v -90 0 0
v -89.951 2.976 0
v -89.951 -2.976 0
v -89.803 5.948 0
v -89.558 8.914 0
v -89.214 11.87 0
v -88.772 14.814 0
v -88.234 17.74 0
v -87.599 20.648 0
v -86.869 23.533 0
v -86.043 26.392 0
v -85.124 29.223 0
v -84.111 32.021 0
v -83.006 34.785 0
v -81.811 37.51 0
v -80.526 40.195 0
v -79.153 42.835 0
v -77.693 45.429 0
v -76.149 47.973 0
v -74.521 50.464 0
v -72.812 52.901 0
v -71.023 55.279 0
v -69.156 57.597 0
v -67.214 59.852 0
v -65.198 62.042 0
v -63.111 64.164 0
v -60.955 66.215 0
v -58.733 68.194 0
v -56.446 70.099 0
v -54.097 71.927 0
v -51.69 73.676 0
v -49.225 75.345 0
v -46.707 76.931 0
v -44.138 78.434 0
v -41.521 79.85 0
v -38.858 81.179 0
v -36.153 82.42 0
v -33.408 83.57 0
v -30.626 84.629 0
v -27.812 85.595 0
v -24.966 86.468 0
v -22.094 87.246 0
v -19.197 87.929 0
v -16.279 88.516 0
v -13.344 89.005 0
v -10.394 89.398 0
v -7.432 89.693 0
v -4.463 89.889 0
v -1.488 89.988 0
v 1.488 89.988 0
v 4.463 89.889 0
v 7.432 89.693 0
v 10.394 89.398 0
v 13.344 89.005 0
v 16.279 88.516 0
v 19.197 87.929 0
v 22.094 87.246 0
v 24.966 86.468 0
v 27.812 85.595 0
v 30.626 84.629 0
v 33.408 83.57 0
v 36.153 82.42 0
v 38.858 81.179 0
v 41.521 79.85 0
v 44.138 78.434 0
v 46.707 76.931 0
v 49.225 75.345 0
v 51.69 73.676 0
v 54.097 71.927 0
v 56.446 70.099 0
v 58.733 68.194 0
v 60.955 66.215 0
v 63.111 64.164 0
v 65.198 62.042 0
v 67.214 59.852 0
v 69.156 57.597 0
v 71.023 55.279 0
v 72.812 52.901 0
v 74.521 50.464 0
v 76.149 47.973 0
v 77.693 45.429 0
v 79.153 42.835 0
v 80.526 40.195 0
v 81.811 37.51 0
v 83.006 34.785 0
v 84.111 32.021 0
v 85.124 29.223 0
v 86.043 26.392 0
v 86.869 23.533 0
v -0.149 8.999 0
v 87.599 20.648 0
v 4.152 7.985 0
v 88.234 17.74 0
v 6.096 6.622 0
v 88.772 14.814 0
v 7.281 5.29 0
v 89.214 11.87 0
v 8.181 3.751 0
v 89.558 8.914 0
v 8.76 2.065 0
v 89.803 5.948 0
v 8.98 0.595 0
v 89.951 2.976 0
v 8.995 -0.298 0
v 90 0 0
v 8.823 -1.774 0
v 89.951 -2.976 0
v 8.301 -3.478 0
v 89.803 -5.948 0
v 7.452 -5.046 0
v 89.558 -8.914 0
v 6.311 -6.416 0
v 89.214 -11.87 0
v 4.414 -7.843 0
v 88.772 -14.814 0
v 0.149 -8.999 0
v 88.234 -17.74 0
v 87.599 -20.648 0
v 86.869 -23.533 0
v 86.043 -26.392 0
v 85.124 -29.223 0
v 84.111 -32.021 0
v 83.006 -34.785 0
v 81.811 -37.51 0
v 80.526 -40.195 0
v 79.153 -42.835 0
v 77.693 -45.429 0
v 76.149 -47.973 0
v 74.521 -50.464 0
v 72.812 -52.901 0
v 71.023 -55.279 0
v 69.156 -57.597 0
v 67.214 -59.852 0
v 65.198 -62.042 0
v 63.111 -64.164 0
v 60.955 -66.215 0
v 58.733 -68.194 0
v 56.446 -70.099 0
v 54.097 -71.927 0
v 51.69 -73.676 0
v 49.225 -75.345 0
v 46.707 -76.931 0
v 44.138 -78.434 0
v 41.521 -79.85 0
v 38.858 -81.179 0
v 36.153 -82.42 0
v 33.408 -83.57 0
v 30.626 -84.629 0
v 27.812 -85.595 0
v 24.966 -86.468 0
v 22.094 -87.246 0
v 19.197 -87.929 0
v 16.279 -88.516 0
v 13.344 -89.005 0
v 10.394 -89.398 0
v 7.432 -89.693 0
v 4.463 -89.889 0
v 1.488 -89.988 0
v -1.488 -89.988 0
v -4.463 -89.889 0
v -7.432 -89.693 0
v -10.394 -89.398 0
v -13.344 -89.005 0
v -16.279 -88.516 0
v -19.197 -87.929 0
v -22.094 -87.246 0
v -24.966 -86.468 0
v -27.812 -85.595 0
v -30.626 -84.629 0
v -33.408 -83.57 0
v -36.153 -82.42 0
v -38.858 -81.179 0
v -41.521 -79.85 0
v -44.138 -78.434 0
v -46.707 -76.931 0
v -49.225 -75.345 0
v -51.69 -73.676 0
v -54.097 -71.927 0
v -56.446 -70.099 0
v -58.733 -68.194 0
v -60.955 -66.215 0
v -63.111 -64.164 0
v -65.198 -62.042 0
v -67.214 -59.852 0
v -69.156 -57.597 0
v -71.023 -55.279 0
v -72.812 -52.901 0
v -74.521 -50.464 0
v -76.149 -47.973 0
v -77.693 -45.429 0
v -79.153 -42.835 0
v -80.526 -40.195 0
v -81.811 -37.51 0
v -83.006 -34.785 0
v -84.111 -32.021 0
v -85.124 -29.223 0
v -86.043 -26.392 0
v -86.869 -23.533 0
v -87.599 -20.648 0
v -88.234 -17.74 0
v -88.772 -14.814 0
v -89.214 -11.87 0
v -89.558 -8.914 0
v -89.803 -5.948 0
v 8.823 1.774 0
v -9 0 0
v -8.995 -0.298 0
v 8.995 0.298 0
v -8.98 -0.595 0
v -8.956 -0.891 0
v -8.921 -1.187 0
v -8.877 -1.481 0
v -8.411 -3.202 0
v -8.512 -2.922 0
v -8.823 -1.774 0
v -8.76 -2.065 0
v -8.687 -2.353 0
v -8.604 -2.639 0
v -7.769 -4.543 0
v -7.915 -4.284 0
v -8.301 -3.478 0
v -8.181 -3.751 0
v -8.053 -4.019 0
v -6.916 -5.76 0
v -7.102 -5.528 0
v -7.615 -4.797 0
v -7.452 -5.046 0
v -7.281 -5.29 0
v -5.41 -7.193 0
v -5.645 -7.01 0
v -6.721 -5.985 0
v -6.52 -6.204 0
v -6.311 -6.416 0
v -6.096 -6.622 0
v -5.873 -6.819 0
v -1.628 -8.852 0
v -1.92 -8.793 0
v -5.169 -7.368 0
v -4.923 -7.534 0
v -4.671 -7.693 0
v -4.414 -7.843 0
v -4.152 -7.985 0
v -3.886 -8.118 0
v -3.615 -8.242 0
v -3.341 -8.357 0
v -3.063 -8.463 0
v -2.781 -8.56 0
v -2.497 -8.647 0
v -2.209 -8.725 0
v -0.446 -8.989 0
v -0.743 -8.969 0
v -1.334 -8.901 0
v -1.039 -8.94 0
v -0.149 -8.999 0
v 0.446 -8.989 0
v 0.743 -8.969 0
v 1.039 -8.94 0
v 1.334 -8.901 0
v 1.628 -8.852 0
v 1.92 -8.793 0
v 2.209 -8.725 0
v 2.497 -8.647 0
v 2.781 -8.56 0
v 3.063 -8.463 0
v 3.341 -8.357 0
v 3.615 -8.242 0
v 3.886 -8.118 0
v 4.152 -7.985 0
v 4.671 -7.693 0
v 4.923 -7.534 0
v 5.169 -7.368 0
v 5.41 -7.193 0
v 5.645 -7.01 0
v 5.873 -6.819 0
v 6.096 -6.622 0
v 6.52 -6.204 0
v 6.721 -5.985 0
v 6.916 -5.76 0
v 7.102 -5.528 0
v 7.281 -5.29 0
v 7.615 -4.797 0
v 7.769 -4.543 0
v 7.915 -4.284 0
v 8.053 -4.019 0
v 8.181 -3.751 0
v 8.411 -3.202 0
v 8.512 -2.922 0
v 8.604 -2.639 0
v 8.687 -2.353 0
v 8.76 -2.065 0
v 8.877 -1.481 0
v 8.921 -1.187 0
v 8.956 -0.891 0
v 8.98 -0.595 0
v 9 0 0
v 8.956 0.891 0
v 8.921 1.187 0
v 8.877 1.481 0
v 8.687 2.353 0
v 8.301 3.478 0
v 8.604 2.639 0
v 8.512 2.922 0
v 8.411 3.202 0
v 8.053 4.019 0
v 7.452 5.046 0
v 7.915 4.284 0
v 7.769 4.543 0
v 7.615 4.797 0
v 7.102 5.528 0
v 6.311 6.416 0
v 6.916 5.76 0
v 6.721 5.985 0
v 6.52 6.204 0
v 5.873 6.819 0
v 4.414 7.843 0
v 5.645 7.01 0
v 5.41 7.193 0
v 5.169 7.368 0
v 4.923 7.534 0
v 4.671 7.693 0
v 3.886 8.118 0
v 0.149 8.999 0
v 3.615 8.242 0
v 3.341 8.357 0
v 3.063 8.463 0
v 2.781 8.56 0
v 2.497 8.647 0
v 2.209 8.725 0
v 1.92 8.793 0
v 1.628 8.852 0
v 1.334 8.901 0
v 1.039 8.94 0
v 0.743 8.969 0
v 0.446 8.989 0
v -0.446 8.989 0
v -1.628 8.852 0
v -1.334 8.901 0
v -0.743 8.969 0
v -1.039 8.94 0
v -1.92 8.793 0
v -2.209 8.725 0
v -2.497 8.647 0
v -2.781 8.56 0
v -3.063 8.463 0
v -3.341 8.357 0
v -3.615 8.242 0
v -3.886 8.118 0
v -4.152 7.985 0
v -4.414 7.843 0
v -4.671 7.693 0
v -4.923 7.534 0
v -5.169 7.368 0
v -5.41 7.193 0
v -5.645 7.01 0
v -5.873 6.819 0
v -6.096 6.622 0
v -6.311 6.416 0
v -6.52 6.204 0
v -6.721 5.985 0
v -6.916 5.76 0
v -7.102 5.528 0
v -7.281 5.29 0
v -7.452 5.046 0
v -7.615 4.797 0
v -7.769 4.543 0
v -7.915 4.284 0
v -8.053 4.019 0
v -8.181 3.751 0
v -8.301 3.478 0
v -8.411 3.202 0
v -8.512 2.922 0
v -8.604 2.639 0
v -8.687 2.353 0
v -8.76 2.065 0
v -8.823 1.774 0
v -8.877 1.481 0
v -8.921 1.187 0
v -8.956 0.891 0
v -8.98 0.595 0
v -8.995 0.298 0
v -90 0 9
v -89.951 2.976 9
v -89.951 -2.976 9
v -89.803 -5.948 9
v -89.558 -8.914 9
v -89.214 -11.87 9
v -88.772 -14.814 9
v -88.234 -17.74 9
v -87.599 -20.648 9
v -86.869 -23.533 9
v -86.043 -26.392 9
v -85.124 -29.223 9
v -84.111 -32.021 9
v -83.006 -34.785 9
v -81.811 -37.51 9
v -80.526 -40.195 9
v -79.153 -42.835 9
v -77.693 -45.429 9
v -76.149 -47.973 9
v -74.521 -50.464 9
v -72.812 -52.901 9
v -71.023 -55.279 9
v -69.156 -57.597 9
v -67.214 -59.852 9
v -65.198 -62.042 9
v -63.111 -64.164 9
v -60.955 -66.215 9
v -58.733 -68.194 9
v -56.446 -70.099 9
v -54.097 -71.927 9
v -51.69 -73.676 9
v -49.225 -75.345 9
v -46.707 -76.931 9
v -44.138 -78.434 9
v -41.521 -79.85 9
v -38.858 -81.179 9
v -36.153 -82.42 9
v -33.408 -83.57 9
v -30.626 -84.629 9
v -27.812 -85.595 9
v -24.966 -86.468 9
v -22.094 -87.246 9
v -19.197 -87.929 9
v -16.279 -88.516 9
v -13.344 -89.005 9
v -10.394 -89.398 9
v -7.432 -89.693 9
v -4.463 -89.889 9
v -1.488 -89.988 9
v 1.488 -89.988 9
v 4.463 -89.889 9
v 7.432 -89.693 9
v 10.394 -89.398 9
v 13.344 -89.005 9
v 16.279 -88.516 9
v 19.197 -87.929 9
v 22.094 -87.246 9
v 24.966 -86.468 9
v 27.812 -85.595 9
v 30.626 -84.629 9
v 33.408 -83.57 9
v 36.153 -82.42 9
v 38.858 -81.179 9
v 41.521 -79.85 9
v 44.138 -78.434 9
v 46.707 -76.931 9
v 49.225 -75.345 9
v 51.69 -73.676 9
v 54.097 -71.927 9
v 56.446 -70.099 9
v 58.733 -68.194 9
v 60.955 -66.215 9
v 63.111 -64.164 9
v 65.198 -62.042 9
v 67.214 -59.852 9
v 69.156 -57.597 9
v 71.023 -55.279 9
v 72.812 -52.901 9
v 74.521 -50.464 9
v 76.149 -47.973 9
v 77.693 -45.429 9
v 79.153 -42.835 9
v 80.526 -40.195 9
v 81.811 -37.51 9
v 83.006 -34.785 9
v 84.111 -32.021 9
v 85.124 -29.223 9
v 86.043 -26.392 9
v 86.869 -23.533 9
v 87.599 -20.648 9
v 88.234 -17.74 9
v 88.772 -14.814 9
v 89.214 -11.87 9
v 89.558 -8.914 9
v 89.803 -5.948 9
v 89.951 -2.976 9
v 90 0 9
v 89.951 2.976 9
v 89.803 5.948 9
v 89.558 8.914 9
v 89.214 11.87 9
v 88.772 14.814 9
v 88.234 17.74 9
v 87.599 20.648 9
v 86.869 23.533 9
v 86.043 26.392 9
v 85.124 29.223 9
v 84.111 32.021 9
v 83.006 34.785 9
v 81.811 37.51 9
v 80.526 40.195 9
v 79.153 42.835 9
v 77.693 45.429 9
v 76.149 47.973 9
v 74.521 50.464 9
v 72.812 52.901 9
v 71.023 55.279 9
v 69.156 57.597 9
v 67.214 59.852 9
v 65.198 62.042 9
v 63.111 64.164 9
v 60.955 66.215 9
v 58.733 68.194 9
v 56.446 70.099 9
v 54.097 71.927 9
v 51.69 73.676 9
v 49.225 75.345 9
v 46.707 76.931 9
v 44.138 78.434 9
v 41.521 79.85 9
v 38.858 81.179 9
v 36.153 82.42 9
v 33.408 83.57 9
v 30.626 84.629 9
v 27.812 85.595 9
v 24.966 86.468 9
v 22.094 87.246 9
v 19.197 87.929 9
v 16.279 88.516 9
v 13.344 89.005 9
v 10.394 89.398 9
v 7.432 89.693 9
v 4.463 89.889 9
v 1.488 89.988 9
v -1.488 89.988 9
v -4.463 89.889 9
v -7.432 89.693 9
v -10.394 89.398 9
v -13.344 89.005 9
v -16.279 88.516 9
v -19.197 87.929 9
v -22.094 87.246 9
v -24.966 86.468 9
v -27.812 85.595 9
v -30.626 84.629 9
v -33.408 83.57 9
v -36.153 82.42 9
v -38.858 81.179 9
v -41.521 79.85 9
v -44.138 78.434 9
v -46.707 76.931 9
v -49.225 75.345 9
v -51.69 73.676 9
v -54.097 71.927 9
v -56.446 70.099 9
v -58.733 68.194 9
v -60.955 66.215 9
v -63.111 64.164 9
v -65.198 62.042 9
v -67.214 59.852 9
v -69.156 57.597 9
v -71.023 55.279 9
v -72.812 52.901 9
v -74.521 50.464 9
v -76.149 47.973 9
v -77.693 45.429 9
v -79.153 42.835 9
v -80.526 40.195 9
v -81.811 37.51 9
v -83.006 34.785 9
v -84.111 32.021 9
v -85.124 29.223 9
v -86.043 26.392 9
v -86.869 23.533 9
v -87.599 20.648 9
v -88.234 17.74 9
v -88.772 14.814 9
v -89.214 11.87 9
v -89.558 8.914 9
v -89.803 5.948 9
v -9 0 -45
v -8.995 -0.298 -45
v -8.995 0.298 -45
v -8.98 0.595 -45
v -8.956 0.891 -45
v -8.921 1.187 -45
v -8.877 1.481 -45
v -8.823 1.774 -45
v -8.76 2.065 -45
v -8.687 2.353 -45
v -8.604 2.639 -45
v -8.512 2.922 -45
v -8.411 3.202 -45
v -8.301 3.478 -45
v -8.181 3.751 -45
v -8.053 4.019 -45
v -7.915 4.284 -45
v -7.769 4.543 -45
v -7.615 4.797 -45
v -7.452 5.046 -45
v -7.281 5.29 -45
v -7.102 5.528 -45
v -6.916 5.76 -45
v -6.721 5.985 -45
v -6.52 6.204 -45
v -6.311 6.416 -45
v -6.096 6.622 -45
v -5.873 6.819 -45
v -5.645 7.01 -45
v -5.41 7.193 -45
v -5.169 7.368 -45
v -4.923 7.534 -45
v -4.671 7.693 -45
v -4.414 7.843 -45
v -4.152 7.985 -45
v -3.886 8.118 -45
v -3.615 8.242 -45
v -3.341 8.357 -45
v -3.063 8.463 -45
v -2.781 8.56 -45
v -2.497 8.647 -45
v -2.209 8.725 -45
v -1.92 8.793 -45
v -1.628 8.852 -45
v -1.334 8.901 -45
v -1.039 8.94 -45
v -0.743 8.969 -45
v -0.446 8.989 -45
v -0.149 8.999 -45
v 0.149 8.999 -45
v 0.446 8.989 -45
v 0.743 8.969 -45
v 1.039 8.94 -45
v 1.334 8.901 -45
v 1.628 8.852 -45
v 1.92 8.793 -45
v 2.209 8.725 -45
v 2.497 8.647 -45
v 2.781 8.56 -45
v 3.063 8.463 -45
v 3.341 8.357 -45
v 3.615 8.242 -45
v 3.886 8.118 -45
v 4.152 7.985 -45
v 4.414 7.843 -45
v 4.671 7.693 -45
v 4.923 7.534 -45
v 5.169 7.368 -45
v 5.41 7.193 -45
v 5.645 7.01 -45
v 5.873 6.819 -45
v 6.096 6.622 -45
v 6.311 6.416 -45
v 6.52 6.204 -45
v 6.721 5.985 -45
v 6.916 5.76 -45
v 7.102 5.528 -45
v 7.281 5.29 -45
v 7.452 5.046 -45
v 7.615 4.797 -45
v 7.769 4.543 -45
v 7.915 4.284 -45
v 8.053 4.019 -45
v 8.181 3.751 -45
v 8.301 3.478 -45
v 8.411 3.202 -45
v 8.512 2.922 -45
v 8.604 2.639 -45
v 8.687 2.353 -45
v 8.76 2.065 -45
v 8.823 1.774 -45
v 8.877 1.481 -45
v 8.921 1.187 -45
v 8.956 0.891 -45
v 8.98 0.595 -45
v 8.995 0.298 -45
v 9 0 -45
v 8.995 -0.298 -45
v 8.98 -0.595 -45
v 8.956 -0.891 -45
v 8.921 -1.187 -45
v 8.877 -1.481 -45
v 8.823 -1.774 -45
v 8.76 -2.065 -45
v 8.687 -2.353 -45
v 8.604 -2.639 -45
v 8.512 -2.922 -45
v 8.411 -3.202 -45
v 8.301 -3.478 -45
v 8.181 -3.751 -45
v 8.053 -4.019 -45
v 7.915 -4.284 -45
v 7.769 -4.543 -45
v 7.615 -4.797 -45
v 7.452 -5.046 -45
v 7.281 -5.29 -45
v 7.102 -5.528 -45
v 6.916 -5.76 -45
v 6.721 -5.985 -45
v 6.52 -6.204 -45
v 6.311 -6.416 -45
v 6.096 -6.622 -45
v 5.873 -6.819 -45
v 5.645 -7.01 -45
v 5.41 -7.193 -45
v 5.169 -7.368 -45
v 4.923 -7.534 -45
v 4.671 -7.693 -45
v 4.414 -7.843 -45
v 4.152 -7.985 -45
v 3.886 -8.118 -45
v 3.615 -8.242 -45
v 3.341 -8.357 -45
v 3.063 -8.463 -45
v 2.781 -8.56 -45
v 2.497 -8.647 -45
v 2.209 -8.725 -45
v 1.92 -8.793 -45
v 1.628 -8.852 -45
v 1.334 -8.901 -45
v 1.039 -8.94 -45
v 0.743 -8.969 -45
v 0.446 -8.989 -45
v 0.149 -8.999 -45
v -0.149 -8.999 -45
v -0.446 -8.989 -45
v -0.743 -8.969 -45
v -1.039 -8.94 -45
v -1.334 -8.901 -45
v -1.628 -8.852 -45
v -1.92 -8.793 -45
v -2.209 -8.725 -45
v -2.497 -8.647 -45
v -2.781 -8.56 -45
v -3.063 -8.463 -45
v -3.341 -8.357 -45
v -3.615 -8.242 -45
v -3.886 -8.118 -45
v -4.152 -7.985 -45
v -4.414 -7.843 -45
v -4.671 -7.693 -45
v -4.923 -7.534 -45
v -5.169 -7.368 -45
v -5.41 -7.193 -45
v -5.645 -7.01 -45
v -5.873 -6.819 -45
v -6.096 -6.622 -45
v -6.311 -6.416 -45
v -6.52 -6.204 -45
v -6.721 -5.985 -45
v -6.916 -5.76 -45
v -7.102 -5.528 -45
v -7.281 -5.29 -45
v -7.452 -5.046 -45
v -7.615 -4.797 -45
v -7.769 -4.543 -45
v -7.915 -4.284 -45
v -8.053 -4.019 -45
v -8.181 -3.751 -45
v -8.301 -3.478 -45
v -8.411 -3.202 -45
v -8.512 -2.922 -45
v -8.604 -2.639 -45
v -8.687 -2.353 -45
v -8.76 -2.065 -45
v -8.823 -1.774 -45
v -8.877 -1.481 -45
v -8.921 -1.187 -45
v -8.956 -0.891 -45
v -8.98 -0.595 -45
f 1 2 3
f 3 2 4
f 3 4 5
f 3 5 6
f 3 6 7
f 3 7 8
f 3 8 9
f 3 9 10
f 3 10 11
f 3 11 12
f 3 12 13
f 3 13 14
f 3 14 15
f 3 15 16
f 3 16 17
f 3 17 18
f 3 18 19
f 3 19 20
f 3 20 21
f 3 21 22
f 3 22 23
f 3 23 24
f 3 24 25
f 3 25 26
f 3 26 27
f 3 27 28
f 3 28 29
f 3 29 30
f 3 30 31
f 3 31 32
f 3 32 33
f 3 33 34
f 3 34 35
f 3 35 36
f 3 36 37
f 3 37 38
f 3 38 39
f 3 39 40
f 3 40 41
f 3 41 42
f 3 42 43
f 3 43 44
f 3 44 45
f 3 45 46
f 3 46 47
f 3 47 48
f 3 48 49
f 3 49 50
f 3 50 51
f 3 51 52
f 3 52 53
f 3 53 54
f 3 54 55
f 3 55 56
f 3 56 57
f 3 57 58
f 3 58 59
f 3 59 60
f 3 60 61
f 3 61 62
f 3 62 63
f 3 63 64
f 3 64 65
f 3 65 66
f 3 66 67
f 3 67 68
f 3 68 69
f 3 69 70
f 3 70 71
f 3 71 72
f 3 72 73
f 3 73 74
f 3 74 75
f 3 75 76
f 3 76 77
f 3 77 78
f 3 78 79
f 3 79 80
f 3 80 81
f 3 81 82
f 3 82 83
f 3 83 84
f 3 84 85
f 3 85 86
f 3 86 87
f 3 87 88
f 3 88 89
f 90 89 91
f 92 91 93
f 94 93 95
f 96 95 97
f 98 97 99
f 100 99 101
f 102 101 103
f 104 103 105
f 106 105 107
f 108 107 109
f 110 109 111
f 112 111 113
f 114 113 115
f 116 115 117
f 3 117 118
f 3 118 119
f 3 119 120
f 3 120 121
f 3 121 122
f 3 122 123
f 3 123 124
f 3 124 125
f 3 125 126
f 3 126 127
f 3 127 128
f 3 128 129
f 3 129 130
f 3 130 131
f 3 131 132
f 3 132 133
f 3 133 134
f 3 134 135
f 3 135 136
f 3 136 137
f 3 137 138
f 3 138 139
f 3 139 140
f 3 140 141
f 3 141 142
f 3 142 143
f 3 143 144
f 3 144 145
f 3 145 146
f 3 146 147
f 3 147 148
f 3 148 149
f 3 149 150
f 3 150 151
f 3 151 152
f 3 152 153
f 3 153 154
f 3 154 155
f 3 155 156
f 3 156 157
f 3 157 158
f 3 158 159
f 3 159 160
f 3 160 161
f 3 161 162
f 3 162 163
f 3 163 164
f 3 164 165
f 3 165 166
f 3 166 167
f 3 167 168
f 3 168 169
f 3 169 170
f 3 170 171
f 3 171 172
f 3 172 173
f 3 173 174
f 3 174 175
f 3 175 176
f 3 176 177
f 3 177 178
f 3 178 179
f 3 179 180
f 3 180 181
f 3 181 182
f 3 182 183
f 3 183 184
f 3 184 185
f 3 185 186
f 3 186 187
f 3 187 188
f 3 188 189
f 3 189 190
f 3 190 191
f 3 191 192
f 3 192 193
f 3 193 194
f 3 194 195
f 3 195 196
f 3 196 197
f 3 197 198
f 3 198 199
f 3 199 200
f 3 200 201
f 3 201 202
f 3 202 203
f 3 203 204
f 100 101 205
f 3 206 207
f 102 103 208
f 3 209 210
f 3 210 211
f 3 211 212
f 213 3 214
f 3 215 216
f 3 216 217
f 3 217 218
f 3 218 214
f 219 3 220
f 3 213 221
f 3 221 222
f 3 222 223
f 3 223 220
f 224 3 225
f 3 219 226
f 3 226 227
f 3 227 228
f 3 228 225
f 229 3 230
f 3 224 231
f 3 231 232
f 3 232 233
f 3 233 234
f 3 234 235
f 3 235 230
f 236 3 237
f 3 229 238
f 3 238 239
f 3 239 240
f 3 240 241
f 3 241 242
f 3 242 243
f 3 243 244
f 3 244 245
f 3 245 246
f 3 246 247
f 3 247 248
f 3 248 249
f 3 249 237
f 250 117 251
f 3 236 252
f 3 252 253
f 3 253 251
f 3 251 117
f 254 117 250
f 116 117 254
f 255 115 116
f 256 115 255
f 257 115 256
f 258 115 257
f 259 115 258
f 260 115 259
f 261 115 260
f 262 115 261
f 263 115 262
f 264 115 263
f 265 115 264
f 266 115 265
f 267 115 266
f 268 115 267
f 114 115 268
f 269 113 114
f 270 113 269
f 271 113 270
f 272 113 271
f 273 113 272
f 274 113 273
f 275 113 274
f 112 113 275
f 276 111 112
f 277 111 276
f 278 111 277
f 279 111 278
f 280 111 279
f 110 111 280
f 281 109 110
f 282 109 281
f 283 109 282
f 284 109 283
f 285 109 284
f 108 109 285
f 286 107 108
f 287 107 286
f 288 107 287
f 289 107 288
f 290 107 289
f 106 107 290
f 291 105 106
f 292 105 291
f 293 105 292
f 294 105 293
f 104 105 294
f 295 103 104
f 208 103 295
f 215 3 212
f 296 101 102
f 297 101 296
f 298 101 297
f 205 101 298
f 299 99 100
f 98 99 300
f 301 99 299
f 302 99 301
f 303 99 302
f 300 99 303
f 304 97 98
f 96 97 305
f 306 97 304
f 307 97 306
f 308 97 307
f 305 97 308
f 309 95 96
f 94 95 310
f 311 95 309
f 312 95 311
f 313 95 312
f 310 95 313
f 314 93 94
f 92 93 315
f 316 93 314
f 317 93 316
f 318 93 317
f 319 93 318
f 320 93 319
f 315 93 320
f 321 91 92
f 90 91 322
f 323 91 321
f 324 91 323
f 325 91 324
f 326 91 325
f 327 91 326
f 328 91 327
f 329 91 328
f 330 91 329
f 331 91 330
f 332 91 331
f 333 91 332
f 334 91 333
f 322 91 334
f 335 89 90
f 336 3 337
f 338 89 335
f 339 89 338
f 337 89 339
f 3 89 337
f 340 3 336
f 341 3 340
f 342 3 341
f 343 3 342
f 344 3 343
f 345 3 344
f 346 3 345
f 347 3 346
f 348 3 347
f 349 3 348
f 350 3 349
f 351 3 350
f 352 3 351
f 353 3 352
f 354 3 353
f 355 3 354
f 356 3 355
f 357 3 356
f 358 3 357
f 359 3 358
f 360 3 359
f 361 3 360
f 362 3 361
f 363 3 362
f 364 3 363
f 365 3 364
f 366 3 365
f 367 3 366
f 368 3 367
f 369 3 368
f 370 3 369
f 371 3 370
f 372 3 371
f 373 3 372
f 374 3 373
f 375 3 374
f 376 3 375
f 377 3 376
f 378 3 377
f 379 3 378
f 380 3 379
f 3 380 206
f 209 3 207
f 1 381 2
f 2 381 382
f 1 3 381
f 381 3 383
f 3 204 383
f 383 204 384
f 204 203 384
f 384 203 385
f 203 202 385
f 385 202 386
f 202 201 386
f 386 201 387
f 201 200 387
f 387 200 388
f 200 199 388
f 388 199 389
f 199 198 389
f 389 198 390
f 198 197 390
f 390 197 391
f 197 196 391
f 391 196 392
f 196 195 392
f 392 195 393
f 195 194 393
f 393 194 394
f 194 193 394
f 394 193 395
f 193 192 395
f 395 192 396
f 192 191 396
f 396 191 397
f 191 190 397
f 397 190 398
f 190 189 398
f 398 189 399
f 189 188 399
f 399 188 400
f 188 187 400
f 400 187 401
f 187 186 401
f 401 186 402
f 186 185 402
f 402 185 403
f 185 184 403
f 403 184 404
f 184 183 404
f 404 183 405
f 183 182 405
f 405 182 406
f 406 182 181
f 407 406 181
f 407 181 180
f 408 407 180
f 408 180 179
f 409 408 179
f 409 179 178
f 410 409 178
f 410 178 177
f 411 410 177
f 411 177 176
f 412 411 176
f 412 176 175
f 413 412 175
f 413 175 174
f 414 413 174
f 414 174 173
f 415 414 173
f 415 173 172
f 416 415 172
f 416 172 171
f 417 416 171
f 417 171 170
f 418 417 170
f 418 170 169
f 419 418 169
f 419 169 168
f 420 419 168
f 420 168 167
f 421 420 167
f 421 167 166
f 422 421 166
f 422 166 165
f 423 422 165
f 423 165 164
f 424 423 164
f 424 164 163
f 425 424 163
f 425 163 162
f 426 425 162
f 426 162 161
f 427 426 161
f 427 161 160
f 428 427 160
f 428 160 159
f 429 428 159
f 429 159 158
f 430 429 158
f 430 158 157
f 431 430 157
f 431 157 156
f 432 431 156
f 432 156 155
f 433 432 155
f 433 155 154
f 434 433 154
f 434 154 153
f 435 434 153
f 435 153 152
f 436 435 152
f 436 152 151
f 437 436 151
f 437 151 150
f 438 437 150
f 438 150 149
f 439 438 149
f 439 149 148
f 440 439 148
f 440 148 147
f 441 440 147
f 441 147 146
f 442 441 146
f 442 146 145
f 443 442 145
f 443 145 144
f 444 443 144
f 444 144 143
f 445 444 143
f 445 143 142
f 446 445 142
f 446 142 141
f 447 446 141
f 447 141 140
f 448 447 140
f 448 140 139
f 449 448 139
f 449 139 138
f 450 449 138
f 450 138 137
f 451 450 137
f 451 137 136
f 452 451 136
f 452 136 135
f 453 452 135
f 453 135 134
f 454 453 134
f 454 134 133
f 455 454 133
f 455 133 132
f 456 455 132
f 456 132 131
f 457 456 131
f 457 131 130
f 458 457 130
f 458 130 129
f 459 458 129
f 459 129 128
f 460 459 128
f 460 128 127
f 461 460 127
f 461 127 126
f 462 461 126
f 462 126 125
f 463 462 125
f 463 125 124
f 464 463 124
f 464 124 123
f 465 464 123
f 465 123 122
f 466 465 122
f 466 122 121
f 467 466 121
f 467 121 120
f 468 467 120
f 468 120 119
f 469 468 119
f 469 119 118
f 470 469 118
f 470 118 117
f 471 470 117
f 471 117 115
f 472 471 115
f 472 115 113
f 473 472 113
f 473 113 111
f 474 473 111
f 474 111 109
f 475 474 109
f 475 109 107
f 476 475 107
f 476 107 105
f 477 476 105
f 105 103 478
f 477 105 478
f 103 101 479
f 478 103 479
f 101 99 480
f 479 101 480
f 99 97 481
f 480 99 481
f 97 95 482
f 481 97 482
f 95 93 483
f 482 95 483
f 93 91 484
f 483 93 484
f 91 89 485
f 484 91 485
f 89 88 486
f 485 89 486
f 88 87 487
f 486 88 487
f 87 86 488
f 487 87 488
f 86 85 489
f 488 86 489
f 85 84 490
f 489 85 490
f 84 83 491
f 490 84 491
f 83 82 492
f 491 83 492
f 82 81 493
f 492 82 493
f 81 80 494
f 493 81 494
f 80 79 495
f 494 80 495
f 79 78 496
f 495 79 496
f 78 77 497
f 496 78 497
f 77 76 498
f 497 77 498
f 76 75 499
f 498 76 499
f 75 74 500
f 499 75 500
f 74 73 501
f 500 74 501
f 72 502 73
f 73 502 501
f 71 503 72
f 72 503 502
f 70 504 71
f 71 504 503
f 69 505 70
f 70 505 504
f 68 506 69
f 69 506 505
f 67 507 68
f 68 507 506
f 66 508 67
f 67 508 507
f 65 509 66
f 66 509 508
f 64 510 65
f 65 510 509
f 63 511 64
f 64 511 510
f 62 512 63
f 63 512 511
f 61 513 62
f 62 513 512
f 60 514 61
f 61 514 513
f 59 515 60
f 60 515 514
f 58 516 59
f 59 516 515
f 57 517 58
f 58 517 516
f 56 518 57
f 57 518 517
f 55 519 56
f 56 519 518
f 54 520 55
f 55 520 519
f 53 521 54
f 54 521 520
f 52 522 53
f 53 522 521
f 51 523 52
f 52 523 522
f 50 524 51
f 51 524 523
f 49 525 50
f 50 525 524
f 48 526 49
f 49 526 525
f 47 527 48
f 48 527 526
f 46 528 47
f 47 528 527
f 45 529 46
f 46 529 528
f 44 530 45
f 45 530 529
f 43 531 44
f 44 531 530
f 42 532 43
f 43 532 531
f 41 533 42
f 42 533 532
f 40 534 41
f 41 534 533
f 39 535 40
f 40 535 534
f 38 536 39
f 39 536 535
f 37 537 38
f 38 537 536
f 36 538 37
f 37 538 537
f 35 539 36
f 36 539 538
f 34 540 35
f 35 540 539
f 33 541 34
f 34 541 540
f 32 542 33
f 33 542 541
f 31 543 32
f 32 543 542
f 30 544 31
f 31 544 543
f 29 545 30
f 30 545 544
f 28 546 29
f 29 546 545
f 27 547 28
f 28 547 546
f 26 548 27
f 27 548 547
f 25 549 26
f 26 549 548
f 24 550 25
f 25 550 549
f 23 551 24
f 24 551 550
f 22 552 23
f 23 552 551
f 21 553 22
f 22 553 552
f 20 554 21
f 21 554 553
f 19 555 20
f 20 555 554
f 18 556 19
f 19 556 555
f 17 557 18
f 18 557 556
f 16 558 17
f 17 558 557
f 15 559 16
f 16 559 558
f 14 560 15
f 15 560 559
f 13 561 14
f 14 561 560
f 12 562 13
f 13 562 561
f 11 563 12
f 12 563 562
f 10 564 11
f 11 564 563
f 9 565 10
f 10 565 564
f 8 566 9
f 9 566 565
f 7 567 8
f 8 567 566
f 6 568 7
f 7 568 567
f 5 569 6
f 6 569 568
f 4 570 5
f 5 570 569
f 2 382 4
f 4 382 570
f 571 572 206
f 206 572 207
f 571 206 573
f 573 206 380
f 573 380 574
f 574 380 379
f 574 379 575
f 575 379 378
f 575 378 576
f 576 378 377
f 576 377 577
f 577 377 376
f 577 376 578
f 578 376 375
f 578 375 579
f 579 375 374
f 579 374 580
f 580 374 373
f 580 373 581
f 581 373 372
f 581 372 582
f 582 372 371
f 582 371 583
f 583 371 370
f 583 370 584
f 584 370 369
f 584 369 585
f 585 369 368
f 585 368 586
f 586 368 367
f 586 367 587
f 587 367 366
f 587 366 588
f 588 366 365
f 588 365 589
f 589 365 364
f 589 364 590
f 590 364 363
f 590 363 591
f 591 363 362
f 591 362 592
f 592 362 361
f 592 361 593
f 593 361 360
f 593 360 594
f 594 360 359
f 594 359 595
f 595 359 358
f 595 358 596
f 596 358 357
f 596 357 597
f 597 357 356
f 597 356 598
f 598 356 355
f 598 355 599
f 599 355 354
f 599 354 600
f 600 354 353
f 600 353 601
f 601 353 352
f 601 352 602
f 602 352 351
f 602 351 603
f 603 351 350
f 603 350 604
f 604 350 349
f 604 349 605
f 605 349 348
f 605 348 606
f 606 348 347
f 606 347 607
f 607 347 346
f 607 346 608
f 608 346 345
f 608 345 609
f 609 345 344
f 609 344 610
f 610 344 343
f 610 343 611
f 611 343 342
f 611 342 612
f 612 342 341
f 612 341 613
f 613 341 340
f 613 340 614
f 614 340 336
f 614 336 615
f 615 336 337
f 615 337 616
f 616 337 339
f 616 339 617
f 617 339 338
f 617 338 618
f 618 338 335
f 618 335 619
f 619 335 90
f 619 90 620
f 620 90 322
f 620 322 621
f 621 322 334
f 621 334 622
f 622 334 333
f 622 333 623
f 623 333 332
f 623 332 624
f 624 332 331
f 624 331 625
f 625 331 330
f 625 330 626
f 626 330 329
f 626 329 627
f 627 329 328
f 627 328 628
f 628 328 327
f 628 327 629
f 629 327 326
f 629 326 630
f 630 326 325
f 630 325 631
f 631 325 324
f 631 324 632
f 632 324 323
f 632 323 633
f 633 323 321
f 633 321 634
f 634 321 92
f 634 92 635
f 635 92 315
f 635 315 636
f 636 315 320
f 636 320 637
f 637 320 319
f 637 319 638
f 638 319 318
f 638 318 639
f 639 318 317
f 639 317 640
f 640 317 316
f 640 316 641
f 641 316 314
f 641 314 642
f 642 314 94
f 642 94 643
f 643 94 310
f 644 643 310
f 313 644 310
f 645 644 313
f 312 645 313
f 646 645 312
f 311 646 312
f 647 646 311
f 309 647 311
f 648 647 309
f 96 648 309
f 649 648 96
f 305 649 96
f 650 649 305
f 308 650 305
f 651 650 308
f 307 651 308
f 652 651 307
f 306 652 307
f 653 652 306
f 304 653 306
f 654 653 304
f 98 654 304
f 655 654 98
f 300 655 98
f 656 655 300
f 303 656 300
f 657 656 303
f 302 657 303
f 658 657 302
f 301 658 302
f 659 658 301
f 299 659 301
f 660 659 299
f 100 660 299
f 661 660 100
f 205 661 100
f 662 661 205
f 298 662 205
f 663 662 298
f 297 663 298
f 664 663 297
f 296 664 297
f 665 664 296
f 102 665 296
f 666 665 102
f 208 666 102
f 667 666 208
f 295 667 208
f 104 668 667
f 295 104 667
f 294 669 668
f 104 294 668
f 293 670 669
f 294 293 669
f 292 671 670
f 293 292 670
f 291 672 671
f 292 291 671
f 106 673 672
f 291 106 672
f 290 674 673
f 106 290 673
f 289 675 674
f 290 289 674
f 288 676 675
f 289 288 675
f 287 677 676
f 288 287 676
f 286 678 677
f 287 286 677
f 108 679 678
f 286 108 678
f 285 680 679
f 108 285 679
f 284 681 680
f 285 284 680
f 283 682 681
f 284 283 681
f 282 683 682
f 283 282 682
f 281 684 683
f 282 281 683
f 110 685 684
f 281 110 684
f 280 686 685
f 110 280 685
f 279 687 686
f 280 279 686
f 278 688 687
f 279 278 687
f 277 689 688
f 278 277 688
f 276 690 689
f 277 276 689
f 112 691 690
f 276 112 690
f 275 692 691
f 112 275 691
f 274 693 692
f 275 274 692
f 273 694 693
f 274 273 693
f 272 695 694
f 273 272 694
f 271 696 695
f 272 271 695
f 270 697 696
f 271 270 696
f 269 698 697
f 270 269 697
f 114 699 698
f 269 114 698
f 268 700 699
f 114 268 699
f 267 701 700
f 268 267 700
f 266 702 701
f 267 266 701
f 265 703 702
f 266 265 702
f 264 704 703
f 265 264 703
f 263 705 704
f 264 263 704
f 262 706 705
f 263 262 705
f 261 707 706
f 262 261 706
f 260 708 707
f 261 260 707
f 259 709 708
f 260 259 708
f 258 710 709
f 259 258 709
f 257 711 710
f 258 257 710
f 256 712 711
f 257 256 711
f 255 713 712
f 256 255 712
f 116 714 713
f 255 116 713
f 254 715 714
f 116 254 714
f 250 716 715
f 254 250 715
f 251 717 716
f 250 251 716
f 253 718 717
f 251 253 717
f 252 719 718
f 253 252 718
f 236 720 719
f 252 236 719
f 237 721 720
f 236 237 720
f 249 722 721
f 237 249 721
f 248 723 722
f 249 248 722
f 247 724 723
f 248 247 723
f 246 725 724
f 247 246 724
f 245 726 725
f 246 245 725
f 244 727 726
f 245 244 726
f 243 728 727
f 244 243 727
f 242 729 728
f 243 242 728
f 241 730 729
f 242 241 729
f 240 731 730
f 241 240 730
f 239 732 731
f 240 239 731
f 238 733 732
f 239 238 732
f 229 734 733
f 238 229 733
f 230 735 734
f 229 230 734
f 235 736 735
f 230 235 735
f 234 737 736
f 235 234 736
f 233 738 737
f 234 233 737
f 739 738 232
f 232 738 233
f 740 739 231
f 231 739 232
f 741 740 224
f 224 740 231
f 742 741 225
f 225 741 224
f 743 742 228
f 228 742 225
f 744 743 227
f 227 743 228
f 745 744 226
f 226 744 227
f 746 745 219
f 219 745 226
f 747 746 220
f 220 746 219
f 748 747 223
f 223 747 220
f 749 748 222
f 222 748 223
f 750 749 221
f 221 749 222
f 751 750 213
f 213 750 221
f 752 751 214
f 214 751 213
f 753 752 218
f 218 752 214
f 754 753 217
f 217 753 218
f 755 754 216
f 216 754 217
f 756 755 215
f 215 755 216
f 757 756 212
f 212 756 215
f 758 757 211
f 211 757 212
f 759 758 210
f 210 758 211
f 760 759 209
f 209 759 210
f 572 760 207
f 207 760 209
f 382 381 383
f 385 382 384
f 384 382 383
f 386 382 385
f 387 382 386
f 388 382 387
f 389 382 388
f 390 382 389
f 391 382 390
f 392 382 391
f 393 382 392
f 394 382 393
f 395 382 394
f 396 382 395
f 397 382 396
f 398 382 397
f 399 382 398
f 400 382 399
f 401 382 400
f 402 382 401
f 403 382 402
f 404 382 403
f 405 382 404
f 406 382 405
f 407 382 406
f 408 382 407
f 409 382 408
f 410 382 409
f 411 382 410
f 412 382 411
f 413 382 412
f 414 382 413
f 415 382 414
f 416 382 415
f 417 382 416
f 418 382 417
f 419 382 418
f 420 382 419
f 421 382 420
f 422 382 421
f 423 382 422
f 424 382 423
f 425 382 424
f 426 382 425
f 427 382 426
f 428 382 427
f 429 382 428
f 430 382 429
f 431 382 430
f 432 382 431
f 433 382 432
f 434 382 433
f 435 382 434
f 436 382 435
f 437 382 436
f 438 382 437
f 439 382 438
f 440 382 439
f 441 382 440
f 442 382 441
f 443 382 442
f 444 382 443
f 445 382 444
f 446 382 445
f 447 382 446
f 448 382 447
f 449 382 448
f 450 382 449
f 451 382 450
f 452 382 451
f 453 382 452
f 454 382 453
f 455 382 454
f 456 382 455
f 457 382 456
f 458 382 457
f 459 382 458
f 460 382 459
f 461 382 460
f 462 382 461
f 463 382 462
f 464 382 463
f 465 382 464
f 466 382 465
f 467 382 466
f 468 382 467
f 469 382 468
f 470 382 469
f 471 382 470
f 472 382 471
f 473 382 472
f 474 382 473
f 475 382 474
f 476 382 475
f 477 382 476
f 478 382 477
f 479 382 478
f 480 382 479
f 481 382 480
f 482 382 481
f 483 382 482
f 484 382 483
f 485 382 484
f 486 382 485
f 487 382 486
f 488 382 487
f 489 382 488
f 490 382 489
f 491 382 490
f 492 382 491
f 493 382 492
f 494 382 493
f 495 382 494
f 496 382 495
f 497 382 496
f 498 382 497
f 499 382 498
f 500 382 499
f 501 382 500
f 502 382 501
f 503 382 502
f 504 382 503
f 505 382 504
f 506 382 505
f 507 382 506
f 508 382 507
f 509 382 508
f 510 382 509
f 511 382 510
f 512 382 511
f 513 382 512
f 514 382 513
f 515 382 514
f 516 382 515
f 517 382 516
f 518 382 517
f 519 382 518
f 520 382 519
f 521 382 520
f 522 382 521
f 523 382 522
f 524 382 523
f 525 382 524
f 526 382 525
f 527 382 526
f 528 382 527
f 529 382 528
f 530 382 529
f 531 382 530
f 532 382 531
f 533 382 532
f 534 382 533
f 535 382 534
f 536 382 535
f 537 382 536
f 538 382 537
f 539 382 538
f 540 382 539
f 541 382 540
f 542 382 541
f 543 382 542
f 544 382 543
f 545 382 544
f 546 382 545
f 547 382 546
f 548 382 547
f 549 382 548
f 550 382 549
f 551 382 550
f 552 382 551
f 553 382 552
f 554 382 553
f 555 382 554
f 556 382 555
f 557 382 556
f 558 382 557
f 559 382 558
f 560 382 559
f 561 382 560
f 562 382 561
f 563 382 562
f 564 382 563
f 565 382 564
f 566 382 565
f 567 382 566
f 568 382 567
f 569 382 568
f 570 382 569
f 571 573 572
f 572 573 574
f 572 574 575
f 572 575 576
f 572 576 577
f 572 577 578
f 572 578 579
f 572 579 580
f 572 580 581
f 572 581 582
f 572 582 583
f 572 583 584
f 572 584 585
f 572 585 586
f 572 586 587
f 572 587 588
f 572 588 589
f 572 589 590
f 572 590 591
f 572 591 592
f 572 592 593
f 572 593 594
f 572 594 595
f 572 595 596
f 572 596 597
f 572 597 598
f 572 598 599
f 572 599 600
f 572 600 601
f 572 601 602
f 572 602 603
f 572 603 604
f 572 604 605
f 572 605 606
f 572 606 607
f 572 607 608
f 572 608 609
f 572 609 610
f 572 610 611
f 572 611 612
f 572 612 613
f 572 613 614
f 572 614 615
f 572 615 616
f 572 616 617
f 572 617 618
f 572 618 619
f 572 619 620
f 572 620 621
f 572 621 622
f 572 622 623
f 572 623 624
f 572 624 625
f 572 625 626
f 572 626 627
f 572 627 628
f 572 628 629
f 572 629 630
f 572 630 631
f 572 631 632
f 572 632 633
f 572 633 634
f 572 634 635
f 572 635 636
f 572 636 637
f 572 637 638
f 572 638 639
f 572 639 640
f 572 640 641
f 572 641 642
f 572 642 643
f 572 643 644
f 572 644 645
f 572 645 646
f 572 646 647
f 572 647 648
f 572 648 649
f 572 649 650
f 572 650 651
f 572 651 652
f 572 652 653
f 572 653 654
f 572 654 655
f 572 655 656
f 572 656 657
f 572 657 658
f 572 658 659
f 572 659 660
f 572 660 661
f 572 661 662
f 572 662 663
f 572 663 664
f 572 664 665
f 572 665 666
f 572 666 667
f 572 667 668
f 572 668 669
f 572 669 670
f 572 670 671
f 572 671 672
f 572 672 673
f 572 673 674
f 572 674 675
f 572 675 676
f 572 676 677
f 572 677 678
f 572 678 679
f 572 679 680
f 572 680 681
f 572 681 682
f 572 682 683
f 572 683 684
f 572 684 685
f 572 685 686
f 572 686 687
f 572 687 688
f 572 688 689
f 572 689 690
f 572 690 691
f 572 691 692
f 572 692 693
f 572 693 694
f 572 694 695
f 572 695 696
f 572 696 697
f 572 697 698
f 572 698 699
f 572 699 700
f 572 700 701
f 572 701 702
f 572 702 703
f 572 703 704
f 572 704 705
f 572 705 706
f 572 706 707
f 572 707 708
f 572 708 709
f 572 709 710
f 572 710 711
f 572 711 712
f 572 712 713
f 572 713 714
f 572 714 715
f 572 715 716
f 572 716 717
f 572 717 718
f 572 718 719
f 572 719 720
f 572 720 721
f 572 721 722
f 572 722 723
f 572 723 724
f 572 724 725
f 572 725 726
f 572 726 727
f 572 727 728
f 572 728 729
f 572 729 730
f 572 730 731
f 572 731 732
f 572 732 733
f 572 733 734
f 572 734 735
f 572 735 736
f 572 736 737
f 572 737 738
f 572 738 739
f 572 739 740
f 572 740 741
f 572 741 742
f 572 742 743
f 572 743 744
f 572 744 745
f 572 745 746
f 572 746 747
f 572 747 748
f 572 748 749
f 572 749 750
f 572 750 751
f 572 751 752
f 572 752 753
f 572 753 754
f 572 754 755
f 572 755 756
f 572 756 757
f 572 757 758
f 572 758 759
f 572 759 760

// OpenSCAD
//Каркас для модели участка ДНК
$fn=190;
x=9;
y=90;
z=90;
dz=-45;
cylinder(x,y,z);
translate([0,0,dz]) cylinder(x*5,y/10,z/10);
